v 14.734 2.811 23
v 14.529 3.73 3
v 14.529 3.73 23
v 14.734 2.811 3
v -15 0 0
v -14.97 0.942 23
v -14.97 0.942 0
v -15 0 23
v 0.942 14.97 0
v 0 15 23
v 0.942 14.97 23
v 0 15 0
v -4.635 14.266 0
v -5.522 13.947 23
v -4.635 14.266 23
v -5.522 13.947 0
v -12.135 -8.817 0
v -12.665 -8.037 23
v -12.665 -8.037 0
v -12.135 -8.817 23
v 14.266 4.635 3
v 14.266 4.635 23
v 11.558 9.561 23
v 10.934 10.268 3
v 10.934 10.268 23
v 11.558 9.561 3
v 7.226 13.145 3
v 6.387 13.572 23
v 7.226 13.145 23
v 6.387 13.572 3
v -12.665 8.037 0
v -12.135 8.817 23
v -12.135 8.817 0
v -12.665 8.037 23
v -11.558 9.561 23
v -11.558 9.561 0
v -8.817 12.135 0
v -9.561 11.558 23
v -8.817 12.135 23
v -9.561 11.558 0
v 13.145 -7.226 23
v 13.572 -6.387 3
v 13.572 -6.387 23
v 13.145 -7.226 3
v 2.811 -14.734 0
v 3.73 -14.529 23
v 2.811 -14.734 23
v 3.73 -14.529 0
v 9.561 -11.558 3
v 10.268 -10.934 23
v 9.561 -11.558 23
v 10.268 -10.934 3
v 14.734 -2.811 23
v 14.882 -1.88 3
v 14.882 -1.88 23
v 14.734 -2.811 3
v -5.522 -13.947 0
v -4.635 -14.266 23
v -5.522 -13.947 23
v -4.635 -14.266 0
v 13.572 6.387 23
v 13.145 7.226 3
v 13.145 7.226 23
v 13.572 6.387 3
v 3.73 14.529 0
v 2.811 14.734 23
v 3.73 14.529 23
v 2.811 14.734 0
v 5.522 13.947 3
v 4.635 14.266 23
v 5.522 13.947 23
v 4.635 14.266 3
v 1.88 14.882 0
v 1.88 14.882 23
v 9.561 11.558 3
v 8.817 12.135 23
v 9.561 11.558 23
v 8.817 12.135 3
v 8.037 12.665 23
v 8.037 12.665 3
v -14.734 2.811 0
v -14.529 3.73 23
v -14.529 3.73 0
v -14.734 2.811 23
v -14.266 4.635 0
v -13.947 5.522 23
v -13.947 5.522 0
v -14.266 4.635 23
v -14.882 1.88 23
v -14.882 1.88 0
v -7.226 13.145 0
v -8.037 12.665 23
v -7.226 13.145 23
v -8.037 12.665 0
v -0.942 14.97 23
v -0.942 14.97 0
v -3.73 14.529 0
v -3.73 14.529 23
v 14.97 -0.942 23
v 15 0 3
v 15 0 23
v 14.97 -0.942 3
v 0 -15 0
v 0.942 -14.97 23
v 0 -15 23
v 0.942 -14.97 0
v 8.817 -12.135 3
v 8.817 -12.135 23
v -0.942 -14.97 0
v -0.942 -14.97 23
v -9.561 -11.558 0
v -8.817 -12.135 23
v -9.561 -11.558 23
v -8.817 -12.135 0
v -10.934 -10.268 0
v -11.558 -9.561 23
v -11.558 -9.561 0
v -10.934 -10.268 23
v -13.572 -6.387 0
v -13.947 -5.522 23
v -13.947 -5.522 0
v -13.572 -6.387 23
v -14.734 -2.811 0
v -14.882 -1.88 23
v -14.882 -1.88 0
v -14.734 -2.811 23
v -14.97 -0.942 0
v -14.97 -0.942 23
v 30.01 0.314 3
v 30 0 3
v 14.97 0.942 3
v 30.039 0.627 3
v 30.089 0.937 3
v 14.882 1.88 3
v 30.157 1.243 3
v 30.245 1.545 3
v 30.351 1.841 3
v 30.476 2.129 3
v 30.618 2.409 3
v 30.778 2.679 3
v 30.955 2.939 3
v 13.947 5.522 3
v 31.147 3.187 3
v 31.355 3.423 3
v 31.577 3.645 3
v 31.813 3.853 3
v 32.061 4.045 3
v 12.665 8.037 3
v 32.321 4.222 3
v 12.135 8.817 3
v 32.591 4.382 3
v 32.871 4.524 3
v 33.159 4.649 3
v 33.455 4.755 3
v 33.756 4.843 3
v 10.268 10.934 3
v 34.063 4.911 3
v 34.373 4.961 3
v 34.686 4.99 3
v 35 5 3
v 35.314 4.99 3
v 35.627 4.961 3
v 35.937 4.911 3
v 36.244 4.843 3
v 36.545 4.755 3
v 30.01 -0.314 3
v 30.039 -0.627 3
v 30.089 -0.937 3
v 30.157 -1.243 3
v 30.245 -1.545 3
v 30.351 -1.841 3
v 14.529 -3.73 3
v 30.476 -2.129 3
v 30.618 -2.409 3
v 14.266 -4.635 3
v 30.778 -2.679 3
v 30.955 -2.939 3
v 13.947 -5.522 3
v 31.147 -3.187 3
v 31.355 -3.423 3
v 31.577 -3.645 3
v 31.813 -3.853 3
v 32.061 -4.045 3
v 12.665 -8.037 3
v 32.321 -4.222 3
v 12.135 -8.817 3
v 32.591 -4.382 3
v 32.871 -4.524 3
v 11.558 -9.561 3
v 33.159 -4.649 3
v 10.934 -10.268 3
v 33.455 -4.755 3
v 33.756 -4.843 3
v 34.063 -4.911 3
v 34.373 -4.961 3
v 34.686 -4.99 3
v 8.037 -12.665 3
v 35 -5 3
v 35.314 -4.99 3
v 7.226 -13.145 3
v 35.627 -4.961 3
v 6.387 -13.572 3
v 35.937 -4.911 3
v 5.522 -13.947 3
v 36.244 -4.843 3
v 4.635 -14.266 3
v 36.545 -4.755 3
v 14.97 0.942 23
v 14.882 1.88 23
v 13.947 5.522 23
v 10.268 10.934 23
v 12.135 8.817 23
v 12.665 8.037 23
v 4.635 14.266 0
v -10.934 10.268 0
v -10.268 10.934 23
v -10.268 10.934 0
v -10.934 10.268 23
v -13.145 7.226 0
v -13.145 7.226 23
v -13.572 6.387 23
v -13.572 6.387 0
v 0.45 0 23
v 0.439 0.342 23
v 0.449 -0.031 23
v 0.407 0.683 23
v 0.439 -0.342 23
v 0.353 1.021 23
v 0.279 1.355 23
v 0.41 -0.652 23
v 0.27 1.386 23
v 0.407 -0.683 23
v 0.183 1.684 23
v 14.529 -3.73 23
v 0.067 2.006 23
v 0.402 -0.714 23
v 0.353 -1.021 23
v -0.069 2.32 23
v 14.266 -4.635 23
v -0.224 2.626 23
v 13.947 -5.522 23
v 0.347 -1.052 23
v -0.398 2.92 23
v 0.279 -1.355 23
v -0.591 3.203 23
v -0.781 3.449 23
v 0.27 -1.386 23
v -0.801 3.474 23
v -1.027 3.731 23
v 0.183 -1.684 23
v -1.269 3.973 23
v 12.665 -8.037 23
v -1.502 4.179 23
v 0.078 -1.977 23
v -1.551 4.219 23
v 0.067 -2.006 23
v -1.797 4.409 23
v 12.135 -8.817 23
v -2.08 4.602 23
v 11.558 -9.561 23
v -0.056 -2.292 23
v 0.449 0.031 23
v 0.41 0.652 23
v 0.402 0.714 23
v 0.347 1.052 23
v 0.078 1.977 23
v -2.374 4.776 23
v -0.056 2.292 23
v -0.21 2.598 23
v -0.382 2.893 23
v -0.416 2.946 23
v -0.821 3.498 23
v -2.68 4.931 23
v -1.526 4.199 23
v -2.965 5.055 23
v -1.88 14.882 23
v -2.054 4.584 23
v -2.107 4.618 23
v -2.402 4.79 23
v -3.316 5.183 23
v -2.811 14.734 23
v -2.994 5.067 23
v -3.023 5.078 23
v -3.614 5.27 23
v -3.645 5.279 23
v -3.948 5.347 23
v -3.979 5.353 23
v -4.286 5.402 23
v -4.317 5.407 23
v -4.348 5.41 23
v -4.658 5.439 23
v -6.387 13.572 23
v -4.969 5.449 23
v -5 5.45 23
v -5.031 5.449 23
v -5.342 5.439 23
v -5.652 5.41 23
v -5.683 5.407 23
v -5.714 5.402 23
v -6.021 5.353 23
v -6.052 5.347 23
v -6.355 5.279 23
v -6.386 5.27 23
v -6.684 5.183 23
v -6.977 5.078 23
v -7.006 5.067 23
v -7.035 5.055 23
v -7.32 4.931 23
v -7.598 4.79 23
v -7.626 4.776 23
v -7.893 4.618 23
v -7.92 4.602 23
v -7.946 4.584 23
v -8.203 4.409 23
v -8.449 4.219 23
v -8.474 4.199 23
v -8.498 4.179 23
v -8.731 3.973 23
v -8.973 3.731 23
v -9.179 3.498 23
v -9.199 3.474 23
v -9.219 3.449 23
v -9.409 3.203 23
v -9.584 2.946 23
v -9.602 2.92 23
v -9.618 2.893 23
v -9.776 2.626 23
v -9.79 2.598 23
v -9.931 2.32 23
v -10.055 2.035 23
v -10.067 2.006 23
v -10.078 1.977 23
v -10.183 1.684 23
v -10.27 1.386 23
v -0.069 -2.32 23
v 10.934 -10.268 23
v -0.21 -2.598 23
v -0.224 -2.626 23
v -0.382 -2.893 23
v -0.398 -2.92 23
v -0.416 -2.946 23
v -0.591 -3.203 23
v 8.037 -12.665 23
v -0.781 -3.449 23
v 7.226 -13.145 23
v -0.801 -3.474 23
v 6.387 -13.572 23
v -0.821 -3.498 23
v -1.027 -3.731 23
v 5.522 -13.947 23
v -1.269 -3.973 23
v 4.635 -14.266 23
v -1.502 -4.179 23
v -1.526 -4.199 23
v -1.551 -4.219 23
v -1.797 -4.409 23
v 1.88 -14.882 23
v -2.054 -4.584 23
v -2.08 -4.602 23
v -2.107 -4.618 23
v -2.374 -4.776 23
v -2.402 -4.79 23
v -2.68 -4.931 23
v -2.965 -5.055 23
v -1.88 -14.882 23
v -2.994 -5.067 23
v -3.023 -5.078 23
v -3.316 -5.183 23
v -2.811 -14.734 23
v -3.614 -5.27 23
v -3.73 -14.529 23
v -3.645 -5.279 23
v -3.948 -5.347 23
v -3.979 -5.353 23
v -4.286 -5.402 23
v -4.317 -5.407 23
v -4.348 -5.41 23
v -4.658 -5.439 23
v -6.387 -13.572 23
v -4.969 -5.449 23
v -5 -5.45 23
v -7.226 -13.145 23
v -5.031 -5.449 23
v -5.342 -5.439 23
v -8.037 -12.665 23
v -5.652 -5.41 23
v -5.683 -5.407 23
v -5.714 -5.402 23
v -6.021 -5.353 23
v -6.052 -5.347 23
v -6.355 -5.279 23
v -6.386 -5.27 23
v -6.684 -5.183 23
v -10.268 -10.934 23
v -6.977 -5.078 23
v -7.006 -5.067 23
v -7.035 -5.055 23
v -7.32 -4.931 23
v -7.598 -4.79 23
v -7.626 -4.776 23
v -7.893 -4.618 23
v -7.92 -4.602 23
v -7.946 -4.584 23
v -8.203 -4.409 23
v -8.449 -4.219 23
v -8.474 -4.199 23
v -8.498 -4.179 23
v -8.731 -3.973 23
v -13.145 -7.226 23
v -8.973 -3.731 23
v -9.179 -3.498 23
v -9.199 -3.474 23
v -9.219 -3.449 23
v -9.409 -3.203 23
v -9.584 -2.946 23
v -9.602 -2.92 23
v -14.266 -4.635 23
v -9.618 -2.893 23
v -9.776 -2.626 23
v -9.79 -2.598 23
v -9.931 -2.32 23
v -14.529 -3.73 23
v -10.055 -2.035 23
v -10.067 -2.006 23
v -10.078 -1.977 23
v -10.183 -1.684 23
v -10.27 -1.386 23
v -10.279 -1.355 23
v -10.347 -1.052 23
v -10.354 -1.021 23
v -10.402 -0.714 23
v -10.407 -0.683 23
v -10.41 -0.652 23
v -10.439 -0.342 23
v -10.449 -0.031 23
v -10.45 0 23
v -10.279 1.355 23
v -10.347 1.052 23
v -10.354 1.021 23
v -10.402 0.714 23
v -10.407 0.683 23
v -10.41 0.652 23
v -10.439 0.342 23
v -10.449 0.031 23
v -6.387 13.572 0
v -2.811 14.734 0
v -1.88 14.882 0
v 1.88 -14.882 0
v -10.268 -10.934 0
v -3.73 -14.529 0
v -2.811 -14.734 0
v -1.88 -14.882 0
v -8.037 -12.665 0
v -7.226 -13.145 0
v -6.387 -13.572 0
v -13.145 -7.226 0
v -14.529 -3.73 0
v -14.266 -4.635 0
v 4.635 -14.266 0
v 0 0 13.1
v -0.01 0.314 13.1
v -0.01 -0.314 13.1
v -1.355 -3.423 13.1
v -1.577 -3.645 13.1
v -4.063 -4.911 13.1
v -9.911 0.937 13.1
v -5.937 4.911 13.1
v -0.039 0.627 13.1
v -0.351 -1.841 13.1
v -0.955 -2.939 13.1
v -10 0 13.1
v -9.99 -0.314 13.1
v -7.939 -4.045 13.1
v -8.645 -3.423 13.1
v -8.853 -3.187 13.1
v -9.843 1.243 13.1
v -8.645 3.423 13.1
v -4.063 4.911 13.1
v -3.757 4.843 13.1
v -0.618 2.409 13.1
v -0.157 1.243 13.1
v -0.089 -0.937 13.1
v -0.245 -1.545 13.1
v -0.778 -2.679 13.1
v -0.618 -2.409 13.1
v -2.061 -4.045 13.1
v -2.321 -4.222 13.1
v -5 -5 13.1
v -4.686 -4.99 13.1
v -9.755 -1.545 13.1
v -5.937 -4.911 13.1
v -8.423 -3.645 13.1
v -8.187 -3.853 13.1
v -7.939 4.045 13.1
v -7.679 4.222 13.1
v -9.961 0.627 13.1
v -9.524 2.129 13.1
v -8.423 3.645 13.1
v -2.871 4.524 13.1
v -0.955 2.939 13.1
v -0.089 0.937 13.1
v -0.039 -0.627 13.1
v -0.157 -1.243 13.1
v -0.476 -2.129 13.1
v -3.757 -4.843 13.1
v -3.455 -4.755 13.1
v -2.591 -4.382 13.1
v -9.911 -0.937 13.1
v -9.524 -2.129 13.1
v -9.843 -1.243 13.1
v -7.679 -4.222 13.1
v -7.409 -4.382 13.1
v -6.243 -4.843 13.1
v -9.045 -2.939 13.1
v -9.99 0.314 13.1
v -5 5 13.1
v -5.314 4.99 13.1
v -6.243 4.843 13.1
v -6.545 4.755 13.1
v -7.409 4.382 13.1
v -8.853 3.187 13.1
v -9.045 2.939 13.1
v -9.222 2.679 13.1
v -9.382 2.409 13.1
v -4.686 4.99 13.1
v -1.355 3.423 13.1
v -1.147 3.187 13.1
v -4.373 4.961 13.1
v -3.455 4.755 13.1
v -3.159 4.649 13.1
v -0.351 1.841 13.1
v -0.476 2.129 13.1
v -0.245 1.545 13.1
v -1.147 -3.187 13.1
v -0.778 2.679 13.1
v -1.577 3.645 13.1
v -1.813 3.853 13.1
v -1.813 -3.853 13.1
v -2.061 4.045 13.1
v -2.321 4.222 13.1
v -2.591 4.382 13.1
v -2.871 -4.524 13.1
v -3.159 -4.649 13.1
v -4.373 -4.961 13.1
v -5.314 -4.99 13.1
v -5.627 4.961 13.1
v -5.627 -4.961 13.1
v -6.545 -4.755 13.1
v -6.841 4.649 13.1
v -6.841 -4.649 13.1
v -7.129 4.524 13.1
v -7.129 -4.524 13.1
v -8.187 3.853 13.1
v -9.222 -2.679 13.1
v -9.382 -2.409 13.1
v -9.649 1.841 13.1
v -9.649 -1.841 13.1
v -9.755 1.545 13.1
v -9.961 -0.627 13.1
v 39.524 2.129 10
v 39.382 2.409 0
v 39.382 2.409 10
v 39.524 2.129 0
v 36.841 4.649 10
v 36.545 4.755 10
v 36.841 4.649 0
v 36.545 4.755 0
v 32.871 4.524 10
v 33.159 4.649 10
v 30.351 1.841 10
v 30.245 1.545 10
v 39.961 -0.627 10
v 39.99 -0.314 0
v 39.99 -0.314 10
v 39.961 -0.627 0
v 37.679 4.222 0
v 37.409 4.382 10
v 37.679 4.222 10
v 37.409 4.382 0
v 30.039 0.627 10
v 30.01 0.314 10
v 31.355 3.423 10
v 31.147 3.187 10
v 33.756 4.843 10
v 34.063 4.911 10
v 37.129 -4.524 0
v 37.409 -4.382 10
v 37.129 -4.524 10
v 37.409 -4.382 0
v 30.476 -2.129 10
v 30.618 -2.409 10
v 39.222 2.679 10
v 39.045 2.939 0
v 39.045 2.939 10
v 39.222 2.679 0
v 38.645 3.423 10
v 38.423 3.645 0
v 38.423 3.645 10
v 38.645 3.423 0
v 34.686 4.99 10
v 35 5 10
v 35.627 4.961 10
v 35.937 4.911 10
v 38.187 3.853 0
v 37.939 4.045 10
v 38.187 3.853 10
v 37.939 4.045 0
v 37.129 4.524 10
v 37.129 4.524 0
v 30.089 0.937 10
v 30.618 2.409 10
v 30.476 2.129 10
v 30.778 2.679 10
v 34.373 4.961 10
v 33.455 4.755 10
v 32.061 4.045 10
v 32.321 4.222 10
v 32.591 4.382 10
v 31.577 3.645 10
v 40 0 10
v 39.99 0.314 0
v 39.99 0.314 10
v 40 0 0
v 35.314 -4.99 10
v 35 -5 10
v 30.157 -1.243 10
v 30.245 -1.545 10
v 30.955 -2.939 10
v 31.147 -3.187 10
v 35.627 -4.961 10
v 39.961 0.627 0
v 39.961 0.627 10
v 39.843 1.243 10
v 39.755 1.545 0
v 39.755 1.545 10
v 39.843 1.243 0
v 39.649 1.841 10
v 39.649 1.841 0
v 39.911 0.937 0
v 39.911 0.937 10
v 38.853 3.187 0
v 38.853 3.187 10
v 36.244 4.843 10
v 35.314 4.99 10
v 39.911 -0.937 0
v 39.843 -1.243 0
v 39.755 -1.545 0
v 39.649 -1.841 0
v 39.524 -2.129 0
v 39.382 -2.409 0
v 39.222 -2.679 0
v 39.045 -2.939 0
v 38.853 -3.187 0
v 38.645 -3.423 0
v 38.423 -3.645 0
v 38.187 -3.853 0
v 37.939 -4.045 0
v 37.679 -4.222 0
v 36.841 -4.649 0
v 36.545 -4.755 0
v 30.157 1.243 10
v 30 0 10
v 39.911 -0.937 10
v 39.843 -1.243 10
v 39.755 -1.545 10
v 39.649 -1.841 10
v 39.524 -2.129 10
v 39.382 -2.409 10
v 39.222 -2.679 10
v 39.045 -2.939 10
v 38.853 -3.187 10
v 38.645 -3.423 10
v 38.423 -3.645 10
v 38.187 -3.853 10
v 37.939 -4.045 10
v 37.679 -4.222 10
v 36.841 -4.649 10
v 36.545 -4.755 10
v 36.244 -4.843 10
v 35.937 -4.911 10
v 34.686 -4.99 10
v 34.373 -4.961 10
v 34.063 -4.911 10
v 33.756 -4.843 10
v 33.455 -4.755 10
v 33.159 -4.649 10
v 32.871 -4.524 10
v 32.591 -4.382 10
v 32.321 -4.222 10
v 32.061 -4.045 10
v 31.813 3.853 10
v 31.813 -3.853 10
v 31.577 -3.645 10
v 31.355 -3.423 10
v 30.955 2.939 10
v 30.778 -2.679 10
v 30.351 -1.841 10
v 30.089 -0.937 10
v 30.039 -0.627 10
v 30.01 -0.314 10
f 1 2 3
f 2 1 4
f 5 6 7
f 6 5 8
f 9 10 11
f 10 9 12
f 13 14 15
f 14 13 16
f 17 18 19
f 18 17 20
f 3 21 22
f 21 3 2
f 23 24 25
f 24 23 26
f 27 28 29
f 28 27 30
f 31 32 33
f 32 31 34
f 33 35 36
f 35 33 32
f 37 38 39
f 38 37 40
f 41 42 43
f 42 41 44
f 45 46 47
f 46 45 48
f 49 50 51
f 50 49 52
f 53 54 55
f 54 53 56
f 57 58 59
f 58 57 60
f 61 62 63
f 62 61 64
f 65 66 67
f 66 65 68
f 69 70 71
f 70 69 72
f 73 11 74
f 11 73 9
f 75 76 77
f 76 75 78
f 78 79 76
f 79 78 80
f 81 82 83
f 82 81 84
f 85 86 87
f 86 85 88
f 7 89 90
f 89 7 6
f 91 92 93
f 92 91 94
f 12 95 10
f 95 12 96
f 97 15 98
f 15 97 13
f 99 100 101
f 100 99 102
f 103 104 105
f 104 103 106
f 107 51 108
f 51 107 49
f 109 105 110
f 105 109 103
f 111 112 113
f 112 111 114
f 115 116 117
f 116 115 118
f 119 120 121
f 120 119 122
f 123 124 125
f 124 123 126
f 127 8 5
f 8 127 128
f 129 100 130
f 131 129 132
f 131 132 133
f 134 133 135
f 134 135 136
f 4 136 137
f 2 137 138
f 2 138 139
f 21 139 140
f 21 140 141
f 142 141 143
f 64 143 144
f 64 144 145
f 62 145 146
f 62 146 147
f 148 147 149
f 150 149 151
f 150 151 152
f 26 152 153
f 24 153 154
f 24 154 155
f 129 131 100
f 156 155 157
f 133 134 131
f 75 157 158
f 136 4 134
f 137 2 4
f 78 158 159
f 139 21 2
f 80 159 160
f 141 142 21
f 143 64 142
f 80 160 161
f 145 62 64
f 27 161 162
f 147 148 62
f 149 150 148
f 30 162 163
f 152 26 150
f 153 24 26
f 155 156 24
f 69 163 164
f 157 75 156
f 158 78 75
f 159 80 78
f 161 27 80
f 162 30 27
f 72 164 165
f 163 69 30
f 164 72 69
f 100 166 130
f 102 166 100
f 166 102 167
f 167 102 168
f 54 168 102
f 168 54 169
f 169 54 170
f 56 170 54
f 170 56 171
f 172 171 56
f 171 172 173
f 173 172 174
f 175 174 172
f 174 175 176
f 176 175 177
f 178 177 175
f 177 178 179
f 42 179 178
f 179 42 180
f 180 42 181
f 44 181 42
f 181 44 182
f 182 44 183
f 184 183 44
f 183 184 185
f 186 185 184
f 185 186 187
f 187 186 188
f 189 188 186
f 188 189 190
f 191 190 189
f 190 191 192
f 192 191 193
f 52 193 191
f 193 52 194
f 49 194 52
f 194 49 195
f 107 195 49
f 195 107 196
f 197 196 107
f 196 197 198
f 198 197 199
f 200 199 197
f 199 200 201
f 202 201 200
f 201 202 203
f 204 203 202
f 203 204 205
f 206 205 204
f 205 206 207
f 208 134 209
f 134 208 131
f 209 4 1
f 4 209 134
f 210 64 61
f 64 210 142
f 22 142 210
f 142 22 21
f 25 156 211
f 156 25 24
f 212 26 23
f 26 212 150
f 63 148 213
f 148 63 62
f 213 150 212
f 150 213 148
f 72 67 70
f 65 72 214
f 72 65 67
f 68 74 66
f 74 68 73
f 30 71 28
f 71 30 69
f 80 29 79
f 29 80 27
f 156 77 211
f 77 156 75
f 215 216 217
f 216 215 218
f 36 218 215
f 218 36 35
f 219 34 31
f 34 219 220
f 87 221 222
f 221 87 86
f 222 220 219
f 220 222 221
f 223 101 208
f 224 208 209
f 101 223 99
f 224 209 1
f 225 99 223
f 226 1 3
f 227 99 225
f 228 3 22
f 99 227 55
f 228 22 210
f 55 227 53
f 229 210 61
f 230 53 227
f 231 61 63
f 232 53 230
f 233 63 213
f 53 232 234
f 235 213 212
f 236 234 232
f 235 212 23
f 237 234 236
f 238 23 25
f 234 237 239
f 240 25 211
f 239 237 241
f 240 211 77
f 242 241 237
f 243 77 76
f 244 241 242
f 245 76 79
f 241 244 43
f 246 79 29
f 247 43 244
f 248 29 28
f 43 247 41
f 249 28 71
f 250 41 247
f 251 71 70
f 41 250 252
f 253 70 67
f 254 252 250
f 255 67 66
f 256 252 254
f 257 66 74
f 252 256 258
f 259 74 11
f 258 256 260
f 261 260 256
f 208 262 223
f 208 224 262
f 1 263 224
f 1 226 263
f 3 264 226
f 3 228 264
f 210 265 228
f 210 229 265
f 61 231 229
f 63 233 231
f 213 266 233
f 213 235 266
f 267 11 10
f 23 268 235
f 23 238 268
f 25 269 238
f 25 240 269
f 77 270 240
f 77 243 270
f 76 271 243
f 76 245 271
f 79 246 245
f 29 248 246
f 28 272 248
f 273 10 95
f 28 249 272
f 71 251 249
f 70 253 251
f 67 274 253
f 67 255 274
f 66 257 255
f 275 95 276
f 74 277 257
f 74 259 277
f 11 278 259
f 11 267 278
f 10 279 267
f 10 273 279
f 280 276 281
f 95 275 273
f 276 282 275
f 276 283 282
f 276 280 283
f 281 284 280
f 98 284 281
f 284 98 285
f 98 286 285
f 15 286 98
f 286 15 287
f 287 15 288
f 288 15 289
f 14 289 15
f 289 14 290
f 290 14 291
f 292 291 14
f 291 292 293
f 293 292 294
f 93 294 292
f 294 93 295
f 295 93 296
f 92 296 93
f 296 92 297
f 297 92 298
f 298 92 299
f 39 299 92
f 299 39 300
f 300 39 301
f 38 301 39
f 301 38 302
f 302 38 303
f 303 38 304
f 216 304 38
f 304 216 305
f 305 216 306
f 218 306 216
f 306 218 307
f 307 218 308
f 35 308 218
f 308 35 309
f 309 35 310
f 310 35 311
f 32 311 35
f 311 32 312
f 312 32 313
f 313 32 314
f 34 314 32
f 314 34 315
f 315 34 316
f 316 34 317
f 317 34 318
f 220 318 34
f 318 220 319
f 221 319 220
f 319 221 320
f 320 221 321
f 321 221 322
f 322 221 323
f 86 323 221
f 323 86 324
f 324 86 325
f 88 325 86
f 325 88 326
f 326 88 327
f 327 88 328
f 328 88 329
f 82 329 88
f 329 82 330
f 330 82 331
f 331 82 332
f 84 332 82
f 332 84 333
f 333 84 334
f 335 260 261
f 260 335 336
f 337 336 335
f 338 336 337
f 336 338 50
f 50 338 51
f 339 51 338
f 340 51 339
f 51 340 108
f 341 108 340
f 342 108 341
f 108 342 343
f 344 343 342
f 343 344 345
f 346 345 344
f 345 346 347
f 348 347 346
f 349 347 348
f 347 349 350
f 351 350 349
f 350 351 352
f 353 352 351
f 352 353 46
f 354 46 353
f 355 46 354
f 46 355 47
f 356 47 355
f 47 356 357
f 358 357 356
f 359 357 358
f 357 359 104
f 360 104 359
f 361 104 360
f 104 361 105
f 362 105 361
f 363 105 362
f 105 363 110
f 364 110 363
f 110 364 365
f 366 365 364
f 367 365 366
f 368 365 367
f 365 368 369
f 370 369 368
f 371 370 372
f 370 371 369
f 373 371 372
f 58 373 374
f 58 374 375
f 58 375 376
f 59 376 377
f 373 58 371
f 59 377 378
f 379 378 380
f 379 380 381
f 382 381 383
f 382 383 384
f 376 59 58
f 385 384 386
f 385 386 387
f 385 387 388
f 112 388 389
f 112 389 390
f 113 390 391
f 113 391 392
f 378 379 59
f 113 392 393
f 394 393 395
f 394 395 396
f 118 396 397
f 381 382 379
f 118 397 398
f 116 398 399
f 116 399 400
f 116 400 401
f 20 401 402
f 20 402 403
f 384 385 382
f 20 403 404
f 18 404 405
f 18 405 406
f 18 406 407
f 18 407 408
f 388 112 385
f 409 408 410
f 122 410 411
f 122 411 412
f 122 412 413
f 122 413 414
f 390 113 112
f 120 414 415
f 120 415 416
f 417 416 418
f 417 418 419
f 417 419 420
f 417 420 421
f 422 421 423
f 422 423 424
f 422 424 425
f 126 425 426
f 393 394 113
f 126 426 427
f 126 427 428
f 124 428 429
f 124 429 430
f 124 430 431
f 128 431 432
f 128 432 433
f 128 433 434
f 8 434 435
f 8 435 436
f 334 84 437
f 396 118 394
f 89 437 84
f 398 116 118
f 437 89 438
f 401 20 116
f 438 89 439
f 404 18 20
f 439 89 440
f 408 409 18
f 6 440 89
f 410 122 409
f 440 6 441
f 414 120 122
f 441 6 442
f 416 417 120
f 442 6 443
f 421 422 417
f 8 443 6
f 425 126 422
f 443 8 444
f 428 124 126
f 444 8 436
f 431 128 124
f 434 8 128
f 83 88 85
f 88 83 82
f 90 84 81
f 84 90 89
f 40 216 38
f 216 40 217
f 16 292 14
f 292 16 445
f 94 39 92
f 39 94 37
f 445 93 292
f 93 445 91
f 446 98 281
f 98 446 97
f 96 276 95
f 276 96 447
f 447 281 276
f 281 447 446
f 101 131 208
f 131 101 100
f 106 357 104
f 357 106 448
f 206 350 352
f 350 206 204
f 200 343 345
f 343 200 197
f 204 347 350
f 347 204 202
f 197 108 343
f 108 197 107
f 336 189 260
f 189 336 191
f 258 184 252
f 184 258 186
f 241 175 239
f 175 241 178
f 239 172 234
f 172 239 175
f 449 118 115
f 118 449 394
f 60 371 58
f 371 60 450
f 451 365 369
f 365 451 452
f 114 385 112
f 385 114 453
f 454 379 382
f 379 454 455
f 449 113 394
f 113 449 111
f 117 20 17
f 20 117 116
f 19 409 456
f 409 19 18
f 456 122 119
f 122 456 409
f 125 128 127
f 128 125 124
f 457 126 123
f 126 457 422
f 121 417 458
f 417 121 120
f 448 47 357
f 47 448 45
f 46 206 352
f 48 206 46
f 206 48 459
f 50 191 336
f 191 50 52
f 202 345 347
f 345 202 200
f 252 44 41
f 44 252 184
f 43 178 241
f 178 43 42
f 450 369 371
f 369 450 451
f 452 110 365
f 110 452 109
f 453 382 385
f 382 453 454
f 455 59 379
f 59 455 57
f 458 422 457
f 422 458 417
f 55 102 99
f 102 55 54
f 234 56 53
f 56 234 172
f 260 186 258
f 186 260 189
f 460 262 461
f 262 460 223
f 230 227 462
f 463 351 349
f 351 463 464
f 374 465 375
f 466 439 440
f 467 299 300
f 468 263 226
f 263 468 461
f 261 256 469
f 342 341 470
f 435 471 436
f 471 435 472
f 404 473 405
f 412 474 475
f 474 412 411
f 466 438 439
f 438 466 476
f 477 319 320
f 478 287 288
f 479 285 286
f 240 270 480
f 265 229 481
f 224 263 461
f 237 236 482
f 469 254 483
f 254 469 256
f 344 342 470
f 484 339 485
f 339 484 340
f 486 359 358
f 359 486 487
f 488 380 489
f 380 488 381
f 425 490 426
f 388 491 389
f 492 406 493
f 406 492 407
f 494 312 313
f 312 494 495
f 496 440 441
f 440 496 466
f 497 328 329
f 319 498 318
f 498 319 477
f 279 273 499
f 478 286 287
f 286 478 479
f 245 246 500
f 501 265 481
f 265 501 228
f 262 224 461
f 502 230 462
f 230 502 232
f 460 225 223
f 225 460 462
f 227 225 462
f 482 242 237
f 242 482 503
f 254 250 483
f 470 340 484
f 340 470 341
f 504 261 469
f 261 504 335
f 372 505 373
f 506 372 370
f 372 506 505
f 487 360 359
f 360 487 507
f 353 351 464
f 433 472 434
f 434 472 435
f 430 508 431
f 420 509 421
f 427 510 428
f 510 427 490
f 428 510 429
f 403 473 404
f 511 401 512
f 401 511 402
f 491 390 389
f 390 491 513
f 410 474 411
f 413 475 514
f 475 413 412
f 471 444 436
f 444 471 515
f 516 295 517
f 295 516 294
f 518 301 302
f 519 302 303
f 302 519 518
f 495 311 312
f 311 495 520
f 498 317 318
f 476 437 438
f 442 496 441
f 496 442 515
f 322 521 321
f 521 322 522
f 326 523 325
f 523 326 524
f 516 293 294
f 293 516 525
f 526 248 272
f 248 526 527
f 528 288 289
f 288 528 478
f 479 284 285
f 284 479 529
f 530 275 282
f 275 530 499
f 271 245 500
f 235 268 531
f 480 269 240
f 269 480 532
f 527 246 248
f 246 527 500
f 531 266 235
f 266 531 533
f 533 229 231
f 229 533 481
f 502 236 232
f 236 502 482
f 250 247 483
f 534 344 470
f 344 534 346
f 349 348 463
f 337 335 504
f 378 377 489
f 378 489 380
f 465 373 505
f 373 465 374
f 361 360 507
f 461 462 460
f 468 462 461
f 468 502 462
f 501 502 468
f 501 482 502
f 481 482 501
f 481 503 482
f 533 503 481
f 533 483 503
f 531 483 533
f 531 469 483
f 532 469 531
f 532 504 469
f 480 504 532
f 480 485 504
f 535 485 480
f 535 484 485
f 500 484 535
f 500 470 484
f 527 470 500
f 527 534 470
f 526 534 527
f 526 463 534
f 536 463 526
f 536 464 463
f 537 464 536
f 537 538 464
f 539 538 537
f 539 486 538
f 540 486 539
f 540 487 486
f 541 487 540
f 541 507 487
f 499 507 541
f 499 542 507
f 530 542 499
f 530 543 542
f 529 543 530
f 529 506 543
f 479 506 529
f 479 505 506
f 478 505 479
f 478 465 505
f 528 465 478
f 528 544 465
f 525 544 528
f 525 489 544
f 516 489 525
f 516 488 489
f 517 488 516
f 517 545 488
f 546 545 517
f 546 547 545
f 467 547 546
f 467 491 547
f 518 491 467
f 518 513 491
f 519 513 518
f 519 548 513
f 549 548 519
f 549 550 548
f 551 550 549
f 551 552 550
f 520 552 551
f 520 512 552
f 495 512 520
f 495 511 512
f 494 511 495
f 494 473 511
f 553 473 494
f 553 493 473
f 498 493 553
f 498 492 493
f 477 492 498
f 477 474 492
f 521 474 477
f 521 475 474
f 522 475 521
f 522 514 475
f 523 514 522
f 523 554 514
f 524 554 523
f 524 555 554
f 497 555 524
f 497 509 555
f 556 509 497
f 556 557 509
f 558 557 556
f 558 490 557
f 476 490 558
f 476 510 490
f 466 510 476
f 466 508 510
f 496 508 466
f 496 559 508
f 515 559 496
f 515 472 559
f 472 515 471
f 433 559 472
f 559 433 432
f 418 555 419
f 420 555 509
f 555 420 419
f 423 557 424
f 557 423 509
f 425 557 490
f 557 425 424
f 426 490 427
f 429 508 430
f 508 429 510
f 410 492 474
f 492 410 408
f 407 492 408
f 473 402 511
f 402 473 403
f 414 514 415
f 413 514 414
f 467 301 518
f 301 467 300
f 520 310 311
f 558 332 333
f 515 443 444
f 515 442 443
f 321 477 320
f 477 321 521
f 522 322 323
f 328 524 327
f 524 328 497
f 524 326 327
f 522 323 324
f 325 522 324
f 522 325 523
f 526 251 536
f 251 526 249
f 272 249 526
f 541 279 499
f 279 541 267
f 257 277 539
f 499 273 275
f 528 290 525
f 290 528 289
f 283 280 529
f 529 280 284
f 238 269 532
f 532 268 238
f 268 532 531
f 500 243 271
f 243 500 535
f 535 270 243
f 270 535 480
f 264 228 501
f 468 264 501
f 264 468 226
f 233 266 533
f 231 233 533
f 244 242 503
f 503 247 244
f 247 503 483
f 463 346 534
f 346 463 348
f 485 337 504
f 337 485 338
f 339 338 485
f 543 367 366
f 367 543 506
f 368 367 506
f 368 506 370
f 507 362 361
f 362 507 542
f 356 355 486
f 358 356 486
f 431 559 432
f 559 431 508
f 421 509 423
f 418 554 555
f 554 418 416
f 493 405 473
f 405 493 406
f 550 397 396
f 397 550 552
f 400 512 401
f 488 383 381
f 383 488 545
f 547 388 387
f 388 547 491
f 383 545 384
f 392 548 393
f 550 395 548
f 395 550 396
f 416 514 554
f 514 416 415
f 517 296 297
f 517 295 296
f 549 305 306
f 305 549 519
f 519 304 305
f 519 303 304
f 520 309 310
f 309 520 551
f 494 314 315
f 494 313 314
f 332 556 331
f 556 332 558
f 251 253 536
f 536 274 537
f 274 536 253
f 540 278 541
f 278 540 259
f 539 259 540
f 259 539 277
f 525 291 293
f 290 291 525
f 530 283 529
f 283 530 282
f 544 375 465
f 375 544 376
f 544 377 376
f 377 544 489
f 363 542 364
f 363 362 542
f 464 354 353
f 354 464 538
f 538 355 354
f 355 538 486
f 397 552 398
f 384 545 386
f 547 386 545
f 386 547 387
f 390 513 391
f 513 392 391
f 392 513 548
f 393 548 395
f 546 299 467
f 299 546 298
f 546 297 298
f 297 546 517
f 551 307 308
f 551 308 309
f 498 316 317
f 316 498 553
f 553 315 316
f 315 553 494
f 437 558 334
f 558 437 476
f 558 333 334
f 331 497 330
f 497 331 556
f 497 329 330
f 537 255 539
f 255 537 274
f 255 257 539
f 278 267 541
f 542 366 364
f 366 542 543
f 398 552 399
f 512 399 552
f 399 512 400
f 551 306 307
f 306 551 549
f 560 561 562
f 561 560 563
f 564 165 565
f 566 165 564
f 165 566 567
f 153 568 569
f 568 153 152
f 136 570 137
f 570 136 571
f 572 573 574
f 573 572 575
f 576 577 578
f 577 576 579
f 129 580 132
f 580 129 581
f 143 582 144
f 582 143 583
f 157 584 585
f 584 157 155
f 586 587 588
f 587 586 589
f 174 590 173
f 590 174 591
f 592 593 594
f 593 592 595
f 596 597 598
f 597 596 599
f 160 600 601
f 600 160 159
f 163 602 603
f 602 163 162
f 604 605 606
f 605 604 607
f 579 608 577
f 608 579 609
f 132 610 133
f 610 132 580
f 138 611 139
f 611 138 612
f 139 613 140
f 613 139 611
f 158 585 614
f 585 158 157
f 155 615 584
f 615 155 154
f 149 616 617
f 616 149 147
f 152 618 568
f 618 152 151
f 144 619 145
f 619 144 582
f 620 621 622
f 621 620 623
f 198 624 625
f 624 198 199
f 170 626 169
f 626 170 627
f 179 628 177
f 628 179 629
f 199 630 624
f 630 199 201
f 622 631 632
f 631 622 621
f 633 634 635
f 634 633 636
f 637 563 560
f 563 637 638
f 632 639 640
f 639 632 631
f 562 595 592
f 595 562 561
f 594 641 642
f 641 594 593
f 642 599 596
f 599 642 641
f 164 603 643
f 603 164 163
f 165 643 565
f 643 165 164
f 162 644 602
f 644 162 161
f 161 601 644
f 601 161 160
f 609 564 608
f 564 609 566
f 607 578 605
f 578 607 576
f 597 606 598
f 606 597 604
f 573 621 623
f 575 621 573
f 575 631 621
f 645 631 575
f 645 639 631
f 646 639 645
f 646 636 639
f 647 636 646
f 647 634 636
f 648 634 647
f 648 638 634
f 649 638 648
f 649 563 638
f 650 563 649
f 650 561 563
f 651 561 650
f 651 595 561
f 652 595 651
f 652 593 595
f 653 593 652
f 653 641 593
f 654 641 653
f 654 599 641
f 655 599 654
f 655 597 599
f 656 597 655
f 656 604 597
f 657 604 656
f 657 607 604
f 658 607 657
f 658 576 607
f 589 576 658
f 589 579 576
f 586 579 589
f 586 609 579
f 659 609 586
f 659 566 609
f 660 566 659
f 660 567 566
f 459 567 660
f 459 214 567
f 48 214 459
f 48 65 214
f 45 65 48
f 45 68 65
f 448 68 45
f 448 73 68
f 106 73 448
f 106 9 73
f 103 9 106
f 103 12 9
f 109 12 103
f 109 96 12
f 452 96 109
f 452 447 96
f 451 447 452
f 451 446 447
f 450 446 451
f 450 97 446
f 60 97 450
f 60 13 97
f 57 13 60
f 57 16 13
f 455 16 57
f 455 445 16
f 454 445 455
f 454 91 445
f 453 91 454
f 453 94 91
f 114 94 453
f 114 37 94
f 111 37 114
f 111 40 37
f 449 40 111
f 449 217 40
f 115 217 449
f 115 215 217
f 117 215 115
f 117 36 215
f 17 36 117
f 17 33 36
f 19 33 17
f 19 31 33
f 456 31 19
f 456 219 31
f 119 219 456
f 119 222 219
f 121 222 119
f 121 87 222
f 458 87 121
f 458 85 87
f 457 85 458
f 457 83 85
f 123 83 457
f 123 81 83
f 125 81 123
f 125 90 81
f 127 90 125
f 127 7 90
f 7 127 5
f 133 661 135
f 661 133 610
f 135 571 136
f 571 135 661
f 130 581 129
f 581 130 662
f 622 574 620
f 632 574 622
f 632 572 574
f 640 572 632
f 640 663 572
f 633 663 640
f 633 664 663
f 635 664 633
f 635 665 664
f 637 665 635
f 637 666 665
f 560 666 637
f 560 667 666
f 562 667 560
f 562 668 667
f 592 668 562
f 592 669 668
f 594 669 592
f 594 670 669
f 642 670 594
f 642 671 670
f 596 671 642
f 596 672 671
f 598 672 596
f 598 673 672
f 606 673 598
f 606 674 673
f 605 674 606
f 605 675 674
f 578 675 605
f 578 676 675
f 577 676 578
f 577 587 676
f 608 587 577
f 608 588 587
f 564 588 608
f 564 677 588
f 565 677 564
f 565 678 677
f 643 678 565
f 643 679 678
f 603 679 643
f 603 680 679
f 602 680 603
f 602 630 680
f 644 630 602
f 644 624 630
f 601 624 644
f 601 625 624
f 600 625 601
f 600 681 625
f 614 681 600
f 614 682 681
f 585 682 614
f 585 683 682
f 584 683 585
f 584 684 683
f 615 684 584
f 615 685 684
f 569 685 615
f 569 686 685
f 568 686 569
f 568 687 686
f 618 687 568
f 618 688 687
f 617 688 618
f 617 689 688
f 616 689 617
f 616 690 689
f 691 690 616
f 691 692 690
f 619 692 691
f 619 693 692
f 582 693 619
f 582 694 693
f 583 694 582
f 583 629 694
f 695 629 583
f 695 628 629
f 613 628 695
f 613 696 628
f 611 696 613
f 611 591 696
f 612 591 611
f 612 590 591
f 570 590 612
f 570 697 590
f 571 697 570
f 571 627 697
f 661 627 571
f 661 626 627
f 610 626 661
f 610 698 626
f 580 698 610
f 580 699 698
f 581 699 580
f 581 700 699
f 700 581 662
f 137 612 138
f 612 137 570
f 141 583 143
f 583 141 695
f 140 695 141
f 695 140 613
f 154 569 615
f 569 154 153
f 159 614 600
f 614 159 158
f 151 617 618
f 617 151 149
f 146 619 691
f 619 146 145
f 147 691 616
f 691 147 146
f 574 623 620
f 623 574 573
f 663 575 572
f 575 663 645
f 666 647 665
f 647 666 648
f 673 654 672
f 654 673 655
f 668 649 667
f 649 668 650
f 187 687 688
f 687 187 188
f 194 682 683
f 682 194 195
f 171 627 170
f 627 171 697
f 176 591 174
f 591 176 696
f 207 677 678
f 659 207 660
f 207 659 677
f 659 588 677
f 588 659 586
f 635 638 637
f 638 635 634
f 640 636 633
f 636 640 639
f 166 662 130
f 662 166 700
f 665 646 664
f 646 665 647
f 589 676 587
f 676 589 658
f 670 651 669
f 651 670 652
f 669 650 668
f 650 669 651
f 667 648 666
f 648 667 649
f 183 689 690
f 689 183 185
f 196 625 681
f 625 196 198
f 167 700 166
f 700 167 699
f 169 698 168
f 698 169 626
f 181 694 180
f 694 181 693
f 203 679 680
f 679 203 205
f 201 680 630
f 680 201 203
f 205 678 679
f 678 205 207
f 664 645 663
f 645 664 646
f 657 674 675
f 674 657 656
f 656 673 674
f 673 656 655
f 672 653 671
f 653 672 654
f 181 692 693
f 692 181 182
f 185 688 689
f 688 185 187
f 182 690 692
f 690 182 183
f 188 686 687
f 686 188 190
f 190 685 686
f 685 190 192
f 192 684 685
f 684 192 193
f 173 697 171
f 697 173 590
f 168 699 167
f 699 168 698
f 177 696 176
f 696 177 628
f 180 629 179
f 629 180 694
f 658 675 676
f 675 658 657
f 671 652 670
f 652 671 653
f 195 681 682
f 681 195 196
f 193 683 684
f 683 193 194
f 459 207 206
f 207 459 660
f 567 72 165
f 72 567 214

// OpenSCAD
bigCylinderRaduis = 30;
bigCylinderHeight = 20;
smallCylinderRaduis = 10;
smallCylinderHeight = 10;
separation=15;
unionHeight = 3;
holeHeight=11;
holeRadiusUp=11;
holeRadiusDown=10;

//Global variable
$fn=100; 

//Big cylinder
difference() {
    translate([0,0,unionHeight])
        cylinder(h=bigCylinderHeight, d1=bigCylinderRaduis, d2=bigCylinderRaduis);

    //Hole
    translate([-smallCylinderRaduis/2,0,unionHeight+bigCylinderHeight-smallCylinderHeight+0.1])
        cylinder(h=holeHeight, d1=holeRadiusDown, d2=holeRadiusUp);
}

//Small cylinder
translate([(bigCylinderRaduis/2)+separation+(smallCylinderRaduis/2),0,0])
    cylinder(h=smallCylinderHeight, d1=smallCylinderRaduis, d2=smallCylinderRaduis);

//Union
hull() { 
    cylinder(h=unionHeight, d1=bigCylinderRaduis, d2=bigCylinderRaduis);

    translate([(bigCylinderRaduis/2)+separation+(smallCylinderRaduis/2),0,0])
        cylinder(h=unionHeight, d1=smallCylinderRaduis, d2=smallCylinderRaduis);
}
